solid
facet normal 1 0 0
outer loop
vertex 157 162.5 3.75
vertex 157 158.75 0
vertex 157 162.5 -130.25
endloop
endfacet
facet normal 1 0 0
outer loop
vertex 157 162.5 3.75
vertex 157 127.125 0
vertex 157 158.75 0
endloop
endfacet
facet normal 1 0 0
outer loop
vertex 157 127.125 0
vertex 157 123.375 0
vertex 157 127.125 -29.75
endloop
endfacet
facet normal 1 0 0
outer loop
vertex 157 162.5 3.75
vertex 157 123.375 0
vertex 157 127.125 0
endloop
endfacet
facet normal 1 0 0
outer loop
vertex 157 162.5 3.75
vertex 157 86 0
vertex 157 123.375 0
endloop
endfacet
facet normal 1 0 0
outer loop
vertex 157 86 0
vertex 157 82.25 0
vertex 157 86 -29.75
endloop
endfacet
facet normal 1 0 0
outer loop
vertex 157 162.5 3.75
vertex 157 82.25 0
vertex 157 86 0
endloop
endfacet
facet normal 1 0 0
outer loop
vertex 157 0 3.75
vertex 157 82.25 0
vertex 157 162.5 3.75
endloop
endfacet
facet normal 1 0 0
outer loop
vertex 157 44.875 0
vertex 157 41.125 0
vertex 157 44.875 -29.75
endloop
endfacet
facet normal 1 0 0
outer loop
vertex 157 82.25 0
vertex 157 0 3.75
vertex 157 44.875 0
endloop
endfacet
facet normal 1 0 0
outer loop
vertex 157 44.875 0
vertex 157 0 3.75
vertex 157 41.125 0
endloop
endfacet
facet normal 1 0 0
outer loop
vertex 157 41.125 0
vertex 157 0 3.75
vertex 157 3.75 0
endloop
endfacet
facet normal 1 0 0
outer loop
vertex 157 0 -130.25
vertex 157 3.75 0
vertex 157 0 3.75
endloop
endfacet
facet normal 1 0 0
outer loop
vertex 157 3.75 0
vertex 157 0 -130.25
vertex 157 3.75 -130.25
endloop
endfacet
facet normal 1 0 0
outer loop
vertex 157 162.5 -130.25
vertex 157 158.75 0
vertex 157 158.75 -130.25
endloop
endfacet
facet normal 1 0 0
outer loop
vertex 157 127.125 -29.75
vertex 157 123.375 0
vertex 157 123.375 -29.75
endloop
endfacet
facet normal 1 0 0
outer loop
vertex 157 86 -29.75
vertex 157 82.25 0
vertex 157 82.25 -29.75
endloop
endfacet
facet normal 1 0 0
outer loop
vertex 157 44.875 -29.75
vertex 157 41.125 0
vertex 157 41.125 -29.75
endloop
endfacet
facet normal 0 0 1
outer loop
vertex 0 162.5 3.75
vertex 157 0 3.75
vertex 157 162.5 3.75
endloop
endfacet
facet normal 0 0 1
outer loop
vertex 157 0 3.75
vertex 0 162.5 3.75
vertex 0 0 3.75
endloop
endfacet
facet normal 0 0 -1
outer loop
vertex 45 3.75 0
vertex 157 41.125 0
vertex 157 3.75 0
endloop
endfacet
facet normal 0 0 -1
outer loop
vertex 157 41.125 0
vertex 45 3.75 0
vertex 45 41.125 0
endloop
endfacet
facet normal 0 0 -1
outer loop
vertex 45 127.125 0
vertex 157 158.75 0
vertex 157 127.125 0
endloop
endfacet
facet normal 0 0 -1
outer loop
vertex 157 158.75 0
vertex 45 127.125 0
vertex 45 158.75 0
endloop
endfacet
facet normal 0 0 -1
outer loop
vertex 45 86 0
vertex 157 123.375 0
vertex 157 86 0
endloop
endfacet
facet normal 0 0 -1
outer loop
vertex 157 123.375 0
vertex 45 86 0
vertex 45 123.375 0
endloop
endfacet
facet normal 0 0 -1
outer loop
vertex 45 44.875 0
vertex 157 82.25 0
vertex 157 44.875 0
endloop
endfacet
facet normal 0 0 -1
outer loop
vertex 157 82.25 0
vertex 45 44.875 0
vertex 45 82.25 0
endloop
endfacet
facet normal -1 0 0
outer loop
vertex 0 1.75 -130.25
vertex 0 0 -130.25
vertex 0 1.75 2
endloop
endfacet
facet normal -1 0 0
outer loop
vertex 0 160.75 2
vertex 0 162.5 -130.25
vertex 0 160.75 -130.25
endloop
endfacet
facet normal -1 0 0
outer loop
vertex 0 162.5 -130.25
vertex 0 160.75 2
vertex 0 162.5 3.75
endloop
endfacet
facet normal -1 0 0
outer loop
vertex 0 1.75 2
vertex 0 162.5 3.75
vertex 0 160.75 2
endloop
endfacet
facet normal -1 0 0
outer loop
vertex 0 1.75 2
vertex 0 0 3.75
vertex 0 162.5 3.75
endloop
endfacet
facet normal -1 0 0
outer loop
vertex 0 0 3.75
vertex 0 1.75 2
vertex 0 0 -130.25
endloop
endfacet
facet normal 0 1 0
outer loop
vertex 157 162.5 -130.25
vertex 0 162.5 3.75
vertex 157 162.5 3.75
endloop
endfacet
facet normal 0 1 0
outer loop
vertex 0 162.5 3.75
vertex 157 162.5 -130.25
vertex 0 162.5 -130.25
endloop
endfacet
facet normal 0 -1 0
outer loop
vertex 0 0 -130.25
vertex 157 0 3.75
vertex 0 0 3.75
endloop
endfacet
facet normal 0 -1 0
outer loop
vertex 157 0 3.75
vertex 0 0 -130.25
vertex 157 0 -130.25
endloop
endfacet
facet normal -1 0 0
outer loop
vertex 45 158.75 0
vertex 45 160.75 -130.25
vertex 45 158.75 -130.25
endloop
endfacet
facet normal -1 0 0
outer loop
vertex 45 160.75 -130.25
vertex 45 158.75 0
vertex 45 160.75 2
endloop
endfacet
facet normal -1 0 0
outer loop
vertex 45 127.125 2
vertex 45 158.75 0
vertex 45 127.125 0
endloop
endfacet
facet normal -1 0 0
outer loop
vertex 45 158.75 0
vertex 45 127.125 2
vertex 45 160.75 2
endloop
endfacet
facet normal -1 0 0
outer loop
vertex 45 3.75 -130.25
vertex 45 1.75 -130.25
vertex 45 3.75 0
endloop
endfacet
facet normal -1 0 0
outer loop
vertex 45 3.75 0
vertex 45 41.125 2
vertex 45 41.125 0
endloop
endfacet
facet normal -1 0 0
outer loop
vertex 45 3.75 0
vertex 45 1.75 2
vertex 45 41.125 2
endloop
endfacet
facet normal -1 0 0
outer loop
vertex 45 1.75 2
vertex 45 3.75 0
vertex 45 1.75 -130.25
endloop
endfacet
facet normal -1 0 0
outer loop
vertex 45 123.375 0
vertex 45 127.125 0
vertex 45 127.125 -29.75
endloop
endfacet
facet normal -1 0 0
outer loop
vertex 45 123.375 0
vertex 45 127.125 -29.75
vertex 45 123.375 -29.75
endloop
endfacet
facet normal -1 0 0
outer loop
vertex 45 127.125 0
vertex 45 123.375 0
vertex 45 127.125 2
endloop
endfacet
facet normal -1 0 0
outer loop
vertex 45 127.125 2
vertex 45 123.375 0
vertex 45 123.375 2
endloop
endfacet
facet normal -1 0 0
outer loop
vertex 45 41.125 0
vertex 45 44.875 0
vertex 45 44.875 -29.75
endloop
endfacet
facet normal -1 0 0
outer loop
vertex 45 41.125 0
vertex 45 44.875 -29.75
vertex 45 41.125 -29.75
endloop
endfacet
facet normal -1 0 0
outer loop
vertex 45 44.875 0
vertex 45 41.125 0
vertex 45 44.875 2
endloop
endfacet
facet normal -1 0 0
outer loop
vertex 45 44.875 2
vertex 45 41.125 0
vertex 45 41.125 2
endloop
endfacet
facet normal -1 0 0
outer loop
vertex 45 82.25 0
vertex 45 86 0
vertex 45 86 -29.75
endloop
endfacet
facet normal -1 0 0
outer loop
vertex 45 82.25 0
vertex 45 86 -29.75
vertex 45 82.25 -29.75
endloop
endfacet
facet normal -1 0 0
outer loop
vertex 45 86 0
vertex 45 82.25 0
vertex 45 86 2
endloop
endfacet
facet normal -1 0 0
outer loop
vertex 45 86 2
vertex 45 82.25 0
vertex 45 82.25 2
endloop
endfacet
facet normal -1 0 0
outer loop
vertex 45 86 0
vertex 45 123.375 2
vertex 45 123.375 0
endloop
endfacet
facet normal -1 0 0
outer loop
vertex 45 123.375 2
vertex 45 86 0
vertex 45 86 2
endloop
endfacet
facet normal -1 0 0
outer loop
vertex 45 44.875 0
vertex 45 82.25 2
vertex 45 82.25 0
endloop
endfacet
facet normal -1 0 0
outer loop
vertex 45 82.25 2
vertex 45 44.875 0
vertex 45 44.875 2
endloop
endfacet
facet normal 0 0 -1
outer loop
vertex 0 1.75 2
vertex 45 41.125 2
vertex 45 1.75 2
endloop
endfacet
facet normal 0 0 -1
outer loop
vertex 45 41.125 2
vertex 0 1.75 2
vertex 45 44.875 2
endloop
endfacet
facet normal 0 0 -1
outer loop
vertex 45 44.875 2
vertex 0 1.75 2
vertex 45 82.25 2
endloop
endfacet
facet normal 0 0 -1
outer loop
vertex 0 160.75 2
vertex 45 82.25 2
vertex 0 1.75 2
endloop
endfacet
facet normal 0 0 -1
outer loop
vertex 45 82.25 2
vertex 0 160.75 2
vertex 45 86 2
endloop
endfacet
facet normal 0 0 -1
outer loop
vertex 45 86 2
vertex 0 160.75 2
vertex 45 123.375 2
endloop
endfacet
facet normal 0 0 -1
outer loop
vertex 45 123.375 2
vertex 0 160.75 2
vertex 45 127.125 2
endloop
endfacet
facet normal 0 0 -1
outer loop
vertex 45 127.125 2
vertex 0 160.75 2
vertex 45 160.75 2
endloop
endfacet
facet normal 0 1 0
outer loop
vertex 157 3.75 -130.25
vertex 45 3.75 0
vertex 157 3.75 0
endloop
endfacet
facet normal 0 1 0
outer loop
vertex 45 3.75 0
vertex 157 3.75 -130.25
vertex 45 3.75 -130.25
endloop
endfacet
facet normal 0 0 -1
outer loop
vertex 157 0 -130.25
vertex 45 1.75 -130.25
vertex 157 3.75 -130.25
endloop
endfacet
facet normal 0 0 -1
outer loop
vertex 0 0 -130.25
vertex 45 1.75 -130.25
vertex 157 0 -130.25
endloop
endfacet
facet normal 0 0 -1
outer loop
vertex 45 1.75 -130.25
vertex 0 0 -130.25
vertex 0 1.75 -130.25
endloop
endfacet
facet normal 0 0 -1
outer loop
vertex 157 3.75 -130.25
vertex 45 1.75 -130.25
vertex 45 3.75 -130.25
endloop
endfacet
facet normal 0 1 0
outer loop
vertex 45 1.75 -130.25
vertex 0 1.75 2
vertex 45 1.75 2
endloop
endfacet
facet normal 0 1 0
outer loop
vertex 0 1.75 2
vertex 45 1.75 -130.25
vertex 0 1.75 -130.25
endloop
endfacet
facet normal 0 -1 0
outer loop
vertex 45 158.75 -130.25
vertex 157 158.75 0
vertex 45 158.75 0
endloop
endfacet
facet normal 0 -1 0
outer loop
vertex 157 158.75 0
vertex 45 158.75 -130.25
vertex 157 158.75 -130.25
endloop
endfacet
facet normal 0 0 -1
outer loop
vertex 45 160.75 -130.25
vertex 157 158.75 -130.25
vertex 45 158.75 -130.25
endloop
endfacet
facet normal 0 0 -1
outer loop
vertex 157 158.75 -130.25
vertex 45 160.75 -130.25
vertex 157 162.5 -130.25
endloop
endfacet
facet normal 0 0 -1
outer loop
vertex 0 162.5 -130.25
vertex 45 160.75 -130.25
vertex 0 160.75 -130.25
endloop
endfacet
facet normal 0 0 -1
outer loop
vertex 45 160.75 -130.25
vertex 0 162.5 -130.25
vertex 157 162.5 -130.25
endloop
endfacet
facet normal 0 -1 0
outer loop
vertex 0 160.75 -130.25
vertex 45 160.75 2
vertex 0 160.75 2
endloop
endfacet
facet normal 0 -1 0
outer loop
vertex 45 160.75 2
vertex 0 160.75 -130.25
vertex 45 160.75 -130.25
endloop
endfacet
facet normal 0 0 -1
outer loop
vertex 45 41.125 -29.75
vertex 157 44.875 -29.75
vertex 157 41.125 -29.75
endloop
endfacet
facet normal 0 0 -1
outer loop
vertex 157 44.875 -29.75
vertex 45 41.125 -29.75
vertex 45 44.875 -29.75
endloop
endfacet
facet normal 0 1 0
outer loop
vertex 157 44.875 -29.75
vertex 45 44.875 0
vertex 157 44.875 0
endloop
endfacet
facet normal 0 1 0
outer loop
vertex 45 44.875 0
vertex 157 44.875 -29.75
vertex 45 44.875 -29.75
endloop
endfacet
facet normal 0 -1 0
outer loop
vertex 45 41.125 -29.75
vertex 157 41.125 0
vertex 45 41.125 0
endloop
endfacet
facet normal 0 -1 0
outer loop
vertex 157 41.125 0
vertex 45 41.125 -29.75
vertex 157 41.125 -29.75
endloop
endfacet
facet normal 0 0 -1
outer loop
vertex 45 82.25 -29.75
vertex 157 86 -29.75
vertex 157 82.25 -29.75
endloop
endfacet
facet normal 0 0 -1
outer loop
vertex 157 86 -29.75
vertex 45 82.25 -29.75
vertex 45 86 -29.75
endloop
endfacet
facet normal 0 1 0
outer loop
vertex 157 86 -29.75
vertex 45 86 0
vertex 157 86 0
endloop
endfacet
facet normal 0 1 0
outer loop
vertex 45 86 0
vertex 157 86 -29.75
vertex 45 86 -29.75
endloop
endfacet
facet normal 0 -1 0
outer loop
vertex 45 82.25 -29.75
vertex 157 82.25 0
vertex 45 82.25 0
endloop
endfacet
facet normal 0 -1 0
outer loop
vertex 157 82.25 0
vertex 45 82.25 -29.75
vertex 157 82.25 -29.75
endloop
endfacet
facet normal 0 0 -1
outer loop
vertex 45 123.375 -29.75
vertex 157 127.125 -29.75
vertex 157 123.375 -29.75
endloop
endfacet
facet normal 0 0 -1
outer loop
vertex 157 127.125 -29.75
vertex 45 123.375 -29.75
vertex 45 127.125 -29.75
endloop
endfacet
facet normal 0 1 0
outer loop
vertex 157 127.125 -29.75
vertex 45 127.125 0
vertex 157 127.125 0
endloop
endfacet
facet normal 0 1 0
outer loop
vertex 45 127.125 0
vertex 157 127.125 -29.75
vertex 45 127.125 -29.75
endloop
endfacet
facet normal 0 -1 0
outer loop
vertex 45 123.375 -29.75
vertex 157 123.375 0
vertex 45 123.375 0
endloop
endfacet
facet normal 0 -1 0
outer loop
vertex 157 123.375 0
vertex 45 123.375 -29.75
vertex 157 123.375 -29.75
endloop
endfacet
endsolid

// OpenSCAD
fudge = 0.01;

insideWidth = 157;
insideDepth = 155;
insideHeight = 134;
thickness = 3.75;
reliefWidth = 45;
reliefinsideDepth = 2;

union() {

    // Top
    difference() {
        cube([insideWidth,insideDepth+2*thickness,thickness]); // Top plate
        translate([0,-fudge,-fudge]) {
            cube ([reliefWidth,insideDepth+2*thickness+2*fudge,reliefinsideDepth+fudge]); // Top plate relief
        }
    }


    // Side A
    translate([0,thickness,-insideHeight+thickness]) {
        rotate([90,0,0]) {
            difference() {
                cube([insideWidth,insideHeight,thickness]); // Side plate
                translate([0,-fudge,-fudge]) {
                    cube([reliefWidth,insideHeight+2*fudge,reliefinsideDepth+fudge]);
                }
            }
        }
    }


    // Side B
    translate([0,insideDepth+thickness,thickness]) {
        rotate([-90,0,0]) {
            difference() {
                cube([insideWidth,insideHeight,thickness]); // Side plate
                translate([0,-fudge,-fudge]) {
                    cube([reliefWidth,insideHeight+2*fudge,reliefinsideDepth+fudge]);
                }
            }
        }
    }

    // Divider A
    for (i=[1:3]) {
        translate([reliefWidth,i*((insideWidth-2*thickness)/4)+(i-1)*thickness+thickness,-insideHeight/4+thickness]) {
            cube([(insideWidth-reliefWidth),thickness,insideHeight/4]);
        }
    }

}
